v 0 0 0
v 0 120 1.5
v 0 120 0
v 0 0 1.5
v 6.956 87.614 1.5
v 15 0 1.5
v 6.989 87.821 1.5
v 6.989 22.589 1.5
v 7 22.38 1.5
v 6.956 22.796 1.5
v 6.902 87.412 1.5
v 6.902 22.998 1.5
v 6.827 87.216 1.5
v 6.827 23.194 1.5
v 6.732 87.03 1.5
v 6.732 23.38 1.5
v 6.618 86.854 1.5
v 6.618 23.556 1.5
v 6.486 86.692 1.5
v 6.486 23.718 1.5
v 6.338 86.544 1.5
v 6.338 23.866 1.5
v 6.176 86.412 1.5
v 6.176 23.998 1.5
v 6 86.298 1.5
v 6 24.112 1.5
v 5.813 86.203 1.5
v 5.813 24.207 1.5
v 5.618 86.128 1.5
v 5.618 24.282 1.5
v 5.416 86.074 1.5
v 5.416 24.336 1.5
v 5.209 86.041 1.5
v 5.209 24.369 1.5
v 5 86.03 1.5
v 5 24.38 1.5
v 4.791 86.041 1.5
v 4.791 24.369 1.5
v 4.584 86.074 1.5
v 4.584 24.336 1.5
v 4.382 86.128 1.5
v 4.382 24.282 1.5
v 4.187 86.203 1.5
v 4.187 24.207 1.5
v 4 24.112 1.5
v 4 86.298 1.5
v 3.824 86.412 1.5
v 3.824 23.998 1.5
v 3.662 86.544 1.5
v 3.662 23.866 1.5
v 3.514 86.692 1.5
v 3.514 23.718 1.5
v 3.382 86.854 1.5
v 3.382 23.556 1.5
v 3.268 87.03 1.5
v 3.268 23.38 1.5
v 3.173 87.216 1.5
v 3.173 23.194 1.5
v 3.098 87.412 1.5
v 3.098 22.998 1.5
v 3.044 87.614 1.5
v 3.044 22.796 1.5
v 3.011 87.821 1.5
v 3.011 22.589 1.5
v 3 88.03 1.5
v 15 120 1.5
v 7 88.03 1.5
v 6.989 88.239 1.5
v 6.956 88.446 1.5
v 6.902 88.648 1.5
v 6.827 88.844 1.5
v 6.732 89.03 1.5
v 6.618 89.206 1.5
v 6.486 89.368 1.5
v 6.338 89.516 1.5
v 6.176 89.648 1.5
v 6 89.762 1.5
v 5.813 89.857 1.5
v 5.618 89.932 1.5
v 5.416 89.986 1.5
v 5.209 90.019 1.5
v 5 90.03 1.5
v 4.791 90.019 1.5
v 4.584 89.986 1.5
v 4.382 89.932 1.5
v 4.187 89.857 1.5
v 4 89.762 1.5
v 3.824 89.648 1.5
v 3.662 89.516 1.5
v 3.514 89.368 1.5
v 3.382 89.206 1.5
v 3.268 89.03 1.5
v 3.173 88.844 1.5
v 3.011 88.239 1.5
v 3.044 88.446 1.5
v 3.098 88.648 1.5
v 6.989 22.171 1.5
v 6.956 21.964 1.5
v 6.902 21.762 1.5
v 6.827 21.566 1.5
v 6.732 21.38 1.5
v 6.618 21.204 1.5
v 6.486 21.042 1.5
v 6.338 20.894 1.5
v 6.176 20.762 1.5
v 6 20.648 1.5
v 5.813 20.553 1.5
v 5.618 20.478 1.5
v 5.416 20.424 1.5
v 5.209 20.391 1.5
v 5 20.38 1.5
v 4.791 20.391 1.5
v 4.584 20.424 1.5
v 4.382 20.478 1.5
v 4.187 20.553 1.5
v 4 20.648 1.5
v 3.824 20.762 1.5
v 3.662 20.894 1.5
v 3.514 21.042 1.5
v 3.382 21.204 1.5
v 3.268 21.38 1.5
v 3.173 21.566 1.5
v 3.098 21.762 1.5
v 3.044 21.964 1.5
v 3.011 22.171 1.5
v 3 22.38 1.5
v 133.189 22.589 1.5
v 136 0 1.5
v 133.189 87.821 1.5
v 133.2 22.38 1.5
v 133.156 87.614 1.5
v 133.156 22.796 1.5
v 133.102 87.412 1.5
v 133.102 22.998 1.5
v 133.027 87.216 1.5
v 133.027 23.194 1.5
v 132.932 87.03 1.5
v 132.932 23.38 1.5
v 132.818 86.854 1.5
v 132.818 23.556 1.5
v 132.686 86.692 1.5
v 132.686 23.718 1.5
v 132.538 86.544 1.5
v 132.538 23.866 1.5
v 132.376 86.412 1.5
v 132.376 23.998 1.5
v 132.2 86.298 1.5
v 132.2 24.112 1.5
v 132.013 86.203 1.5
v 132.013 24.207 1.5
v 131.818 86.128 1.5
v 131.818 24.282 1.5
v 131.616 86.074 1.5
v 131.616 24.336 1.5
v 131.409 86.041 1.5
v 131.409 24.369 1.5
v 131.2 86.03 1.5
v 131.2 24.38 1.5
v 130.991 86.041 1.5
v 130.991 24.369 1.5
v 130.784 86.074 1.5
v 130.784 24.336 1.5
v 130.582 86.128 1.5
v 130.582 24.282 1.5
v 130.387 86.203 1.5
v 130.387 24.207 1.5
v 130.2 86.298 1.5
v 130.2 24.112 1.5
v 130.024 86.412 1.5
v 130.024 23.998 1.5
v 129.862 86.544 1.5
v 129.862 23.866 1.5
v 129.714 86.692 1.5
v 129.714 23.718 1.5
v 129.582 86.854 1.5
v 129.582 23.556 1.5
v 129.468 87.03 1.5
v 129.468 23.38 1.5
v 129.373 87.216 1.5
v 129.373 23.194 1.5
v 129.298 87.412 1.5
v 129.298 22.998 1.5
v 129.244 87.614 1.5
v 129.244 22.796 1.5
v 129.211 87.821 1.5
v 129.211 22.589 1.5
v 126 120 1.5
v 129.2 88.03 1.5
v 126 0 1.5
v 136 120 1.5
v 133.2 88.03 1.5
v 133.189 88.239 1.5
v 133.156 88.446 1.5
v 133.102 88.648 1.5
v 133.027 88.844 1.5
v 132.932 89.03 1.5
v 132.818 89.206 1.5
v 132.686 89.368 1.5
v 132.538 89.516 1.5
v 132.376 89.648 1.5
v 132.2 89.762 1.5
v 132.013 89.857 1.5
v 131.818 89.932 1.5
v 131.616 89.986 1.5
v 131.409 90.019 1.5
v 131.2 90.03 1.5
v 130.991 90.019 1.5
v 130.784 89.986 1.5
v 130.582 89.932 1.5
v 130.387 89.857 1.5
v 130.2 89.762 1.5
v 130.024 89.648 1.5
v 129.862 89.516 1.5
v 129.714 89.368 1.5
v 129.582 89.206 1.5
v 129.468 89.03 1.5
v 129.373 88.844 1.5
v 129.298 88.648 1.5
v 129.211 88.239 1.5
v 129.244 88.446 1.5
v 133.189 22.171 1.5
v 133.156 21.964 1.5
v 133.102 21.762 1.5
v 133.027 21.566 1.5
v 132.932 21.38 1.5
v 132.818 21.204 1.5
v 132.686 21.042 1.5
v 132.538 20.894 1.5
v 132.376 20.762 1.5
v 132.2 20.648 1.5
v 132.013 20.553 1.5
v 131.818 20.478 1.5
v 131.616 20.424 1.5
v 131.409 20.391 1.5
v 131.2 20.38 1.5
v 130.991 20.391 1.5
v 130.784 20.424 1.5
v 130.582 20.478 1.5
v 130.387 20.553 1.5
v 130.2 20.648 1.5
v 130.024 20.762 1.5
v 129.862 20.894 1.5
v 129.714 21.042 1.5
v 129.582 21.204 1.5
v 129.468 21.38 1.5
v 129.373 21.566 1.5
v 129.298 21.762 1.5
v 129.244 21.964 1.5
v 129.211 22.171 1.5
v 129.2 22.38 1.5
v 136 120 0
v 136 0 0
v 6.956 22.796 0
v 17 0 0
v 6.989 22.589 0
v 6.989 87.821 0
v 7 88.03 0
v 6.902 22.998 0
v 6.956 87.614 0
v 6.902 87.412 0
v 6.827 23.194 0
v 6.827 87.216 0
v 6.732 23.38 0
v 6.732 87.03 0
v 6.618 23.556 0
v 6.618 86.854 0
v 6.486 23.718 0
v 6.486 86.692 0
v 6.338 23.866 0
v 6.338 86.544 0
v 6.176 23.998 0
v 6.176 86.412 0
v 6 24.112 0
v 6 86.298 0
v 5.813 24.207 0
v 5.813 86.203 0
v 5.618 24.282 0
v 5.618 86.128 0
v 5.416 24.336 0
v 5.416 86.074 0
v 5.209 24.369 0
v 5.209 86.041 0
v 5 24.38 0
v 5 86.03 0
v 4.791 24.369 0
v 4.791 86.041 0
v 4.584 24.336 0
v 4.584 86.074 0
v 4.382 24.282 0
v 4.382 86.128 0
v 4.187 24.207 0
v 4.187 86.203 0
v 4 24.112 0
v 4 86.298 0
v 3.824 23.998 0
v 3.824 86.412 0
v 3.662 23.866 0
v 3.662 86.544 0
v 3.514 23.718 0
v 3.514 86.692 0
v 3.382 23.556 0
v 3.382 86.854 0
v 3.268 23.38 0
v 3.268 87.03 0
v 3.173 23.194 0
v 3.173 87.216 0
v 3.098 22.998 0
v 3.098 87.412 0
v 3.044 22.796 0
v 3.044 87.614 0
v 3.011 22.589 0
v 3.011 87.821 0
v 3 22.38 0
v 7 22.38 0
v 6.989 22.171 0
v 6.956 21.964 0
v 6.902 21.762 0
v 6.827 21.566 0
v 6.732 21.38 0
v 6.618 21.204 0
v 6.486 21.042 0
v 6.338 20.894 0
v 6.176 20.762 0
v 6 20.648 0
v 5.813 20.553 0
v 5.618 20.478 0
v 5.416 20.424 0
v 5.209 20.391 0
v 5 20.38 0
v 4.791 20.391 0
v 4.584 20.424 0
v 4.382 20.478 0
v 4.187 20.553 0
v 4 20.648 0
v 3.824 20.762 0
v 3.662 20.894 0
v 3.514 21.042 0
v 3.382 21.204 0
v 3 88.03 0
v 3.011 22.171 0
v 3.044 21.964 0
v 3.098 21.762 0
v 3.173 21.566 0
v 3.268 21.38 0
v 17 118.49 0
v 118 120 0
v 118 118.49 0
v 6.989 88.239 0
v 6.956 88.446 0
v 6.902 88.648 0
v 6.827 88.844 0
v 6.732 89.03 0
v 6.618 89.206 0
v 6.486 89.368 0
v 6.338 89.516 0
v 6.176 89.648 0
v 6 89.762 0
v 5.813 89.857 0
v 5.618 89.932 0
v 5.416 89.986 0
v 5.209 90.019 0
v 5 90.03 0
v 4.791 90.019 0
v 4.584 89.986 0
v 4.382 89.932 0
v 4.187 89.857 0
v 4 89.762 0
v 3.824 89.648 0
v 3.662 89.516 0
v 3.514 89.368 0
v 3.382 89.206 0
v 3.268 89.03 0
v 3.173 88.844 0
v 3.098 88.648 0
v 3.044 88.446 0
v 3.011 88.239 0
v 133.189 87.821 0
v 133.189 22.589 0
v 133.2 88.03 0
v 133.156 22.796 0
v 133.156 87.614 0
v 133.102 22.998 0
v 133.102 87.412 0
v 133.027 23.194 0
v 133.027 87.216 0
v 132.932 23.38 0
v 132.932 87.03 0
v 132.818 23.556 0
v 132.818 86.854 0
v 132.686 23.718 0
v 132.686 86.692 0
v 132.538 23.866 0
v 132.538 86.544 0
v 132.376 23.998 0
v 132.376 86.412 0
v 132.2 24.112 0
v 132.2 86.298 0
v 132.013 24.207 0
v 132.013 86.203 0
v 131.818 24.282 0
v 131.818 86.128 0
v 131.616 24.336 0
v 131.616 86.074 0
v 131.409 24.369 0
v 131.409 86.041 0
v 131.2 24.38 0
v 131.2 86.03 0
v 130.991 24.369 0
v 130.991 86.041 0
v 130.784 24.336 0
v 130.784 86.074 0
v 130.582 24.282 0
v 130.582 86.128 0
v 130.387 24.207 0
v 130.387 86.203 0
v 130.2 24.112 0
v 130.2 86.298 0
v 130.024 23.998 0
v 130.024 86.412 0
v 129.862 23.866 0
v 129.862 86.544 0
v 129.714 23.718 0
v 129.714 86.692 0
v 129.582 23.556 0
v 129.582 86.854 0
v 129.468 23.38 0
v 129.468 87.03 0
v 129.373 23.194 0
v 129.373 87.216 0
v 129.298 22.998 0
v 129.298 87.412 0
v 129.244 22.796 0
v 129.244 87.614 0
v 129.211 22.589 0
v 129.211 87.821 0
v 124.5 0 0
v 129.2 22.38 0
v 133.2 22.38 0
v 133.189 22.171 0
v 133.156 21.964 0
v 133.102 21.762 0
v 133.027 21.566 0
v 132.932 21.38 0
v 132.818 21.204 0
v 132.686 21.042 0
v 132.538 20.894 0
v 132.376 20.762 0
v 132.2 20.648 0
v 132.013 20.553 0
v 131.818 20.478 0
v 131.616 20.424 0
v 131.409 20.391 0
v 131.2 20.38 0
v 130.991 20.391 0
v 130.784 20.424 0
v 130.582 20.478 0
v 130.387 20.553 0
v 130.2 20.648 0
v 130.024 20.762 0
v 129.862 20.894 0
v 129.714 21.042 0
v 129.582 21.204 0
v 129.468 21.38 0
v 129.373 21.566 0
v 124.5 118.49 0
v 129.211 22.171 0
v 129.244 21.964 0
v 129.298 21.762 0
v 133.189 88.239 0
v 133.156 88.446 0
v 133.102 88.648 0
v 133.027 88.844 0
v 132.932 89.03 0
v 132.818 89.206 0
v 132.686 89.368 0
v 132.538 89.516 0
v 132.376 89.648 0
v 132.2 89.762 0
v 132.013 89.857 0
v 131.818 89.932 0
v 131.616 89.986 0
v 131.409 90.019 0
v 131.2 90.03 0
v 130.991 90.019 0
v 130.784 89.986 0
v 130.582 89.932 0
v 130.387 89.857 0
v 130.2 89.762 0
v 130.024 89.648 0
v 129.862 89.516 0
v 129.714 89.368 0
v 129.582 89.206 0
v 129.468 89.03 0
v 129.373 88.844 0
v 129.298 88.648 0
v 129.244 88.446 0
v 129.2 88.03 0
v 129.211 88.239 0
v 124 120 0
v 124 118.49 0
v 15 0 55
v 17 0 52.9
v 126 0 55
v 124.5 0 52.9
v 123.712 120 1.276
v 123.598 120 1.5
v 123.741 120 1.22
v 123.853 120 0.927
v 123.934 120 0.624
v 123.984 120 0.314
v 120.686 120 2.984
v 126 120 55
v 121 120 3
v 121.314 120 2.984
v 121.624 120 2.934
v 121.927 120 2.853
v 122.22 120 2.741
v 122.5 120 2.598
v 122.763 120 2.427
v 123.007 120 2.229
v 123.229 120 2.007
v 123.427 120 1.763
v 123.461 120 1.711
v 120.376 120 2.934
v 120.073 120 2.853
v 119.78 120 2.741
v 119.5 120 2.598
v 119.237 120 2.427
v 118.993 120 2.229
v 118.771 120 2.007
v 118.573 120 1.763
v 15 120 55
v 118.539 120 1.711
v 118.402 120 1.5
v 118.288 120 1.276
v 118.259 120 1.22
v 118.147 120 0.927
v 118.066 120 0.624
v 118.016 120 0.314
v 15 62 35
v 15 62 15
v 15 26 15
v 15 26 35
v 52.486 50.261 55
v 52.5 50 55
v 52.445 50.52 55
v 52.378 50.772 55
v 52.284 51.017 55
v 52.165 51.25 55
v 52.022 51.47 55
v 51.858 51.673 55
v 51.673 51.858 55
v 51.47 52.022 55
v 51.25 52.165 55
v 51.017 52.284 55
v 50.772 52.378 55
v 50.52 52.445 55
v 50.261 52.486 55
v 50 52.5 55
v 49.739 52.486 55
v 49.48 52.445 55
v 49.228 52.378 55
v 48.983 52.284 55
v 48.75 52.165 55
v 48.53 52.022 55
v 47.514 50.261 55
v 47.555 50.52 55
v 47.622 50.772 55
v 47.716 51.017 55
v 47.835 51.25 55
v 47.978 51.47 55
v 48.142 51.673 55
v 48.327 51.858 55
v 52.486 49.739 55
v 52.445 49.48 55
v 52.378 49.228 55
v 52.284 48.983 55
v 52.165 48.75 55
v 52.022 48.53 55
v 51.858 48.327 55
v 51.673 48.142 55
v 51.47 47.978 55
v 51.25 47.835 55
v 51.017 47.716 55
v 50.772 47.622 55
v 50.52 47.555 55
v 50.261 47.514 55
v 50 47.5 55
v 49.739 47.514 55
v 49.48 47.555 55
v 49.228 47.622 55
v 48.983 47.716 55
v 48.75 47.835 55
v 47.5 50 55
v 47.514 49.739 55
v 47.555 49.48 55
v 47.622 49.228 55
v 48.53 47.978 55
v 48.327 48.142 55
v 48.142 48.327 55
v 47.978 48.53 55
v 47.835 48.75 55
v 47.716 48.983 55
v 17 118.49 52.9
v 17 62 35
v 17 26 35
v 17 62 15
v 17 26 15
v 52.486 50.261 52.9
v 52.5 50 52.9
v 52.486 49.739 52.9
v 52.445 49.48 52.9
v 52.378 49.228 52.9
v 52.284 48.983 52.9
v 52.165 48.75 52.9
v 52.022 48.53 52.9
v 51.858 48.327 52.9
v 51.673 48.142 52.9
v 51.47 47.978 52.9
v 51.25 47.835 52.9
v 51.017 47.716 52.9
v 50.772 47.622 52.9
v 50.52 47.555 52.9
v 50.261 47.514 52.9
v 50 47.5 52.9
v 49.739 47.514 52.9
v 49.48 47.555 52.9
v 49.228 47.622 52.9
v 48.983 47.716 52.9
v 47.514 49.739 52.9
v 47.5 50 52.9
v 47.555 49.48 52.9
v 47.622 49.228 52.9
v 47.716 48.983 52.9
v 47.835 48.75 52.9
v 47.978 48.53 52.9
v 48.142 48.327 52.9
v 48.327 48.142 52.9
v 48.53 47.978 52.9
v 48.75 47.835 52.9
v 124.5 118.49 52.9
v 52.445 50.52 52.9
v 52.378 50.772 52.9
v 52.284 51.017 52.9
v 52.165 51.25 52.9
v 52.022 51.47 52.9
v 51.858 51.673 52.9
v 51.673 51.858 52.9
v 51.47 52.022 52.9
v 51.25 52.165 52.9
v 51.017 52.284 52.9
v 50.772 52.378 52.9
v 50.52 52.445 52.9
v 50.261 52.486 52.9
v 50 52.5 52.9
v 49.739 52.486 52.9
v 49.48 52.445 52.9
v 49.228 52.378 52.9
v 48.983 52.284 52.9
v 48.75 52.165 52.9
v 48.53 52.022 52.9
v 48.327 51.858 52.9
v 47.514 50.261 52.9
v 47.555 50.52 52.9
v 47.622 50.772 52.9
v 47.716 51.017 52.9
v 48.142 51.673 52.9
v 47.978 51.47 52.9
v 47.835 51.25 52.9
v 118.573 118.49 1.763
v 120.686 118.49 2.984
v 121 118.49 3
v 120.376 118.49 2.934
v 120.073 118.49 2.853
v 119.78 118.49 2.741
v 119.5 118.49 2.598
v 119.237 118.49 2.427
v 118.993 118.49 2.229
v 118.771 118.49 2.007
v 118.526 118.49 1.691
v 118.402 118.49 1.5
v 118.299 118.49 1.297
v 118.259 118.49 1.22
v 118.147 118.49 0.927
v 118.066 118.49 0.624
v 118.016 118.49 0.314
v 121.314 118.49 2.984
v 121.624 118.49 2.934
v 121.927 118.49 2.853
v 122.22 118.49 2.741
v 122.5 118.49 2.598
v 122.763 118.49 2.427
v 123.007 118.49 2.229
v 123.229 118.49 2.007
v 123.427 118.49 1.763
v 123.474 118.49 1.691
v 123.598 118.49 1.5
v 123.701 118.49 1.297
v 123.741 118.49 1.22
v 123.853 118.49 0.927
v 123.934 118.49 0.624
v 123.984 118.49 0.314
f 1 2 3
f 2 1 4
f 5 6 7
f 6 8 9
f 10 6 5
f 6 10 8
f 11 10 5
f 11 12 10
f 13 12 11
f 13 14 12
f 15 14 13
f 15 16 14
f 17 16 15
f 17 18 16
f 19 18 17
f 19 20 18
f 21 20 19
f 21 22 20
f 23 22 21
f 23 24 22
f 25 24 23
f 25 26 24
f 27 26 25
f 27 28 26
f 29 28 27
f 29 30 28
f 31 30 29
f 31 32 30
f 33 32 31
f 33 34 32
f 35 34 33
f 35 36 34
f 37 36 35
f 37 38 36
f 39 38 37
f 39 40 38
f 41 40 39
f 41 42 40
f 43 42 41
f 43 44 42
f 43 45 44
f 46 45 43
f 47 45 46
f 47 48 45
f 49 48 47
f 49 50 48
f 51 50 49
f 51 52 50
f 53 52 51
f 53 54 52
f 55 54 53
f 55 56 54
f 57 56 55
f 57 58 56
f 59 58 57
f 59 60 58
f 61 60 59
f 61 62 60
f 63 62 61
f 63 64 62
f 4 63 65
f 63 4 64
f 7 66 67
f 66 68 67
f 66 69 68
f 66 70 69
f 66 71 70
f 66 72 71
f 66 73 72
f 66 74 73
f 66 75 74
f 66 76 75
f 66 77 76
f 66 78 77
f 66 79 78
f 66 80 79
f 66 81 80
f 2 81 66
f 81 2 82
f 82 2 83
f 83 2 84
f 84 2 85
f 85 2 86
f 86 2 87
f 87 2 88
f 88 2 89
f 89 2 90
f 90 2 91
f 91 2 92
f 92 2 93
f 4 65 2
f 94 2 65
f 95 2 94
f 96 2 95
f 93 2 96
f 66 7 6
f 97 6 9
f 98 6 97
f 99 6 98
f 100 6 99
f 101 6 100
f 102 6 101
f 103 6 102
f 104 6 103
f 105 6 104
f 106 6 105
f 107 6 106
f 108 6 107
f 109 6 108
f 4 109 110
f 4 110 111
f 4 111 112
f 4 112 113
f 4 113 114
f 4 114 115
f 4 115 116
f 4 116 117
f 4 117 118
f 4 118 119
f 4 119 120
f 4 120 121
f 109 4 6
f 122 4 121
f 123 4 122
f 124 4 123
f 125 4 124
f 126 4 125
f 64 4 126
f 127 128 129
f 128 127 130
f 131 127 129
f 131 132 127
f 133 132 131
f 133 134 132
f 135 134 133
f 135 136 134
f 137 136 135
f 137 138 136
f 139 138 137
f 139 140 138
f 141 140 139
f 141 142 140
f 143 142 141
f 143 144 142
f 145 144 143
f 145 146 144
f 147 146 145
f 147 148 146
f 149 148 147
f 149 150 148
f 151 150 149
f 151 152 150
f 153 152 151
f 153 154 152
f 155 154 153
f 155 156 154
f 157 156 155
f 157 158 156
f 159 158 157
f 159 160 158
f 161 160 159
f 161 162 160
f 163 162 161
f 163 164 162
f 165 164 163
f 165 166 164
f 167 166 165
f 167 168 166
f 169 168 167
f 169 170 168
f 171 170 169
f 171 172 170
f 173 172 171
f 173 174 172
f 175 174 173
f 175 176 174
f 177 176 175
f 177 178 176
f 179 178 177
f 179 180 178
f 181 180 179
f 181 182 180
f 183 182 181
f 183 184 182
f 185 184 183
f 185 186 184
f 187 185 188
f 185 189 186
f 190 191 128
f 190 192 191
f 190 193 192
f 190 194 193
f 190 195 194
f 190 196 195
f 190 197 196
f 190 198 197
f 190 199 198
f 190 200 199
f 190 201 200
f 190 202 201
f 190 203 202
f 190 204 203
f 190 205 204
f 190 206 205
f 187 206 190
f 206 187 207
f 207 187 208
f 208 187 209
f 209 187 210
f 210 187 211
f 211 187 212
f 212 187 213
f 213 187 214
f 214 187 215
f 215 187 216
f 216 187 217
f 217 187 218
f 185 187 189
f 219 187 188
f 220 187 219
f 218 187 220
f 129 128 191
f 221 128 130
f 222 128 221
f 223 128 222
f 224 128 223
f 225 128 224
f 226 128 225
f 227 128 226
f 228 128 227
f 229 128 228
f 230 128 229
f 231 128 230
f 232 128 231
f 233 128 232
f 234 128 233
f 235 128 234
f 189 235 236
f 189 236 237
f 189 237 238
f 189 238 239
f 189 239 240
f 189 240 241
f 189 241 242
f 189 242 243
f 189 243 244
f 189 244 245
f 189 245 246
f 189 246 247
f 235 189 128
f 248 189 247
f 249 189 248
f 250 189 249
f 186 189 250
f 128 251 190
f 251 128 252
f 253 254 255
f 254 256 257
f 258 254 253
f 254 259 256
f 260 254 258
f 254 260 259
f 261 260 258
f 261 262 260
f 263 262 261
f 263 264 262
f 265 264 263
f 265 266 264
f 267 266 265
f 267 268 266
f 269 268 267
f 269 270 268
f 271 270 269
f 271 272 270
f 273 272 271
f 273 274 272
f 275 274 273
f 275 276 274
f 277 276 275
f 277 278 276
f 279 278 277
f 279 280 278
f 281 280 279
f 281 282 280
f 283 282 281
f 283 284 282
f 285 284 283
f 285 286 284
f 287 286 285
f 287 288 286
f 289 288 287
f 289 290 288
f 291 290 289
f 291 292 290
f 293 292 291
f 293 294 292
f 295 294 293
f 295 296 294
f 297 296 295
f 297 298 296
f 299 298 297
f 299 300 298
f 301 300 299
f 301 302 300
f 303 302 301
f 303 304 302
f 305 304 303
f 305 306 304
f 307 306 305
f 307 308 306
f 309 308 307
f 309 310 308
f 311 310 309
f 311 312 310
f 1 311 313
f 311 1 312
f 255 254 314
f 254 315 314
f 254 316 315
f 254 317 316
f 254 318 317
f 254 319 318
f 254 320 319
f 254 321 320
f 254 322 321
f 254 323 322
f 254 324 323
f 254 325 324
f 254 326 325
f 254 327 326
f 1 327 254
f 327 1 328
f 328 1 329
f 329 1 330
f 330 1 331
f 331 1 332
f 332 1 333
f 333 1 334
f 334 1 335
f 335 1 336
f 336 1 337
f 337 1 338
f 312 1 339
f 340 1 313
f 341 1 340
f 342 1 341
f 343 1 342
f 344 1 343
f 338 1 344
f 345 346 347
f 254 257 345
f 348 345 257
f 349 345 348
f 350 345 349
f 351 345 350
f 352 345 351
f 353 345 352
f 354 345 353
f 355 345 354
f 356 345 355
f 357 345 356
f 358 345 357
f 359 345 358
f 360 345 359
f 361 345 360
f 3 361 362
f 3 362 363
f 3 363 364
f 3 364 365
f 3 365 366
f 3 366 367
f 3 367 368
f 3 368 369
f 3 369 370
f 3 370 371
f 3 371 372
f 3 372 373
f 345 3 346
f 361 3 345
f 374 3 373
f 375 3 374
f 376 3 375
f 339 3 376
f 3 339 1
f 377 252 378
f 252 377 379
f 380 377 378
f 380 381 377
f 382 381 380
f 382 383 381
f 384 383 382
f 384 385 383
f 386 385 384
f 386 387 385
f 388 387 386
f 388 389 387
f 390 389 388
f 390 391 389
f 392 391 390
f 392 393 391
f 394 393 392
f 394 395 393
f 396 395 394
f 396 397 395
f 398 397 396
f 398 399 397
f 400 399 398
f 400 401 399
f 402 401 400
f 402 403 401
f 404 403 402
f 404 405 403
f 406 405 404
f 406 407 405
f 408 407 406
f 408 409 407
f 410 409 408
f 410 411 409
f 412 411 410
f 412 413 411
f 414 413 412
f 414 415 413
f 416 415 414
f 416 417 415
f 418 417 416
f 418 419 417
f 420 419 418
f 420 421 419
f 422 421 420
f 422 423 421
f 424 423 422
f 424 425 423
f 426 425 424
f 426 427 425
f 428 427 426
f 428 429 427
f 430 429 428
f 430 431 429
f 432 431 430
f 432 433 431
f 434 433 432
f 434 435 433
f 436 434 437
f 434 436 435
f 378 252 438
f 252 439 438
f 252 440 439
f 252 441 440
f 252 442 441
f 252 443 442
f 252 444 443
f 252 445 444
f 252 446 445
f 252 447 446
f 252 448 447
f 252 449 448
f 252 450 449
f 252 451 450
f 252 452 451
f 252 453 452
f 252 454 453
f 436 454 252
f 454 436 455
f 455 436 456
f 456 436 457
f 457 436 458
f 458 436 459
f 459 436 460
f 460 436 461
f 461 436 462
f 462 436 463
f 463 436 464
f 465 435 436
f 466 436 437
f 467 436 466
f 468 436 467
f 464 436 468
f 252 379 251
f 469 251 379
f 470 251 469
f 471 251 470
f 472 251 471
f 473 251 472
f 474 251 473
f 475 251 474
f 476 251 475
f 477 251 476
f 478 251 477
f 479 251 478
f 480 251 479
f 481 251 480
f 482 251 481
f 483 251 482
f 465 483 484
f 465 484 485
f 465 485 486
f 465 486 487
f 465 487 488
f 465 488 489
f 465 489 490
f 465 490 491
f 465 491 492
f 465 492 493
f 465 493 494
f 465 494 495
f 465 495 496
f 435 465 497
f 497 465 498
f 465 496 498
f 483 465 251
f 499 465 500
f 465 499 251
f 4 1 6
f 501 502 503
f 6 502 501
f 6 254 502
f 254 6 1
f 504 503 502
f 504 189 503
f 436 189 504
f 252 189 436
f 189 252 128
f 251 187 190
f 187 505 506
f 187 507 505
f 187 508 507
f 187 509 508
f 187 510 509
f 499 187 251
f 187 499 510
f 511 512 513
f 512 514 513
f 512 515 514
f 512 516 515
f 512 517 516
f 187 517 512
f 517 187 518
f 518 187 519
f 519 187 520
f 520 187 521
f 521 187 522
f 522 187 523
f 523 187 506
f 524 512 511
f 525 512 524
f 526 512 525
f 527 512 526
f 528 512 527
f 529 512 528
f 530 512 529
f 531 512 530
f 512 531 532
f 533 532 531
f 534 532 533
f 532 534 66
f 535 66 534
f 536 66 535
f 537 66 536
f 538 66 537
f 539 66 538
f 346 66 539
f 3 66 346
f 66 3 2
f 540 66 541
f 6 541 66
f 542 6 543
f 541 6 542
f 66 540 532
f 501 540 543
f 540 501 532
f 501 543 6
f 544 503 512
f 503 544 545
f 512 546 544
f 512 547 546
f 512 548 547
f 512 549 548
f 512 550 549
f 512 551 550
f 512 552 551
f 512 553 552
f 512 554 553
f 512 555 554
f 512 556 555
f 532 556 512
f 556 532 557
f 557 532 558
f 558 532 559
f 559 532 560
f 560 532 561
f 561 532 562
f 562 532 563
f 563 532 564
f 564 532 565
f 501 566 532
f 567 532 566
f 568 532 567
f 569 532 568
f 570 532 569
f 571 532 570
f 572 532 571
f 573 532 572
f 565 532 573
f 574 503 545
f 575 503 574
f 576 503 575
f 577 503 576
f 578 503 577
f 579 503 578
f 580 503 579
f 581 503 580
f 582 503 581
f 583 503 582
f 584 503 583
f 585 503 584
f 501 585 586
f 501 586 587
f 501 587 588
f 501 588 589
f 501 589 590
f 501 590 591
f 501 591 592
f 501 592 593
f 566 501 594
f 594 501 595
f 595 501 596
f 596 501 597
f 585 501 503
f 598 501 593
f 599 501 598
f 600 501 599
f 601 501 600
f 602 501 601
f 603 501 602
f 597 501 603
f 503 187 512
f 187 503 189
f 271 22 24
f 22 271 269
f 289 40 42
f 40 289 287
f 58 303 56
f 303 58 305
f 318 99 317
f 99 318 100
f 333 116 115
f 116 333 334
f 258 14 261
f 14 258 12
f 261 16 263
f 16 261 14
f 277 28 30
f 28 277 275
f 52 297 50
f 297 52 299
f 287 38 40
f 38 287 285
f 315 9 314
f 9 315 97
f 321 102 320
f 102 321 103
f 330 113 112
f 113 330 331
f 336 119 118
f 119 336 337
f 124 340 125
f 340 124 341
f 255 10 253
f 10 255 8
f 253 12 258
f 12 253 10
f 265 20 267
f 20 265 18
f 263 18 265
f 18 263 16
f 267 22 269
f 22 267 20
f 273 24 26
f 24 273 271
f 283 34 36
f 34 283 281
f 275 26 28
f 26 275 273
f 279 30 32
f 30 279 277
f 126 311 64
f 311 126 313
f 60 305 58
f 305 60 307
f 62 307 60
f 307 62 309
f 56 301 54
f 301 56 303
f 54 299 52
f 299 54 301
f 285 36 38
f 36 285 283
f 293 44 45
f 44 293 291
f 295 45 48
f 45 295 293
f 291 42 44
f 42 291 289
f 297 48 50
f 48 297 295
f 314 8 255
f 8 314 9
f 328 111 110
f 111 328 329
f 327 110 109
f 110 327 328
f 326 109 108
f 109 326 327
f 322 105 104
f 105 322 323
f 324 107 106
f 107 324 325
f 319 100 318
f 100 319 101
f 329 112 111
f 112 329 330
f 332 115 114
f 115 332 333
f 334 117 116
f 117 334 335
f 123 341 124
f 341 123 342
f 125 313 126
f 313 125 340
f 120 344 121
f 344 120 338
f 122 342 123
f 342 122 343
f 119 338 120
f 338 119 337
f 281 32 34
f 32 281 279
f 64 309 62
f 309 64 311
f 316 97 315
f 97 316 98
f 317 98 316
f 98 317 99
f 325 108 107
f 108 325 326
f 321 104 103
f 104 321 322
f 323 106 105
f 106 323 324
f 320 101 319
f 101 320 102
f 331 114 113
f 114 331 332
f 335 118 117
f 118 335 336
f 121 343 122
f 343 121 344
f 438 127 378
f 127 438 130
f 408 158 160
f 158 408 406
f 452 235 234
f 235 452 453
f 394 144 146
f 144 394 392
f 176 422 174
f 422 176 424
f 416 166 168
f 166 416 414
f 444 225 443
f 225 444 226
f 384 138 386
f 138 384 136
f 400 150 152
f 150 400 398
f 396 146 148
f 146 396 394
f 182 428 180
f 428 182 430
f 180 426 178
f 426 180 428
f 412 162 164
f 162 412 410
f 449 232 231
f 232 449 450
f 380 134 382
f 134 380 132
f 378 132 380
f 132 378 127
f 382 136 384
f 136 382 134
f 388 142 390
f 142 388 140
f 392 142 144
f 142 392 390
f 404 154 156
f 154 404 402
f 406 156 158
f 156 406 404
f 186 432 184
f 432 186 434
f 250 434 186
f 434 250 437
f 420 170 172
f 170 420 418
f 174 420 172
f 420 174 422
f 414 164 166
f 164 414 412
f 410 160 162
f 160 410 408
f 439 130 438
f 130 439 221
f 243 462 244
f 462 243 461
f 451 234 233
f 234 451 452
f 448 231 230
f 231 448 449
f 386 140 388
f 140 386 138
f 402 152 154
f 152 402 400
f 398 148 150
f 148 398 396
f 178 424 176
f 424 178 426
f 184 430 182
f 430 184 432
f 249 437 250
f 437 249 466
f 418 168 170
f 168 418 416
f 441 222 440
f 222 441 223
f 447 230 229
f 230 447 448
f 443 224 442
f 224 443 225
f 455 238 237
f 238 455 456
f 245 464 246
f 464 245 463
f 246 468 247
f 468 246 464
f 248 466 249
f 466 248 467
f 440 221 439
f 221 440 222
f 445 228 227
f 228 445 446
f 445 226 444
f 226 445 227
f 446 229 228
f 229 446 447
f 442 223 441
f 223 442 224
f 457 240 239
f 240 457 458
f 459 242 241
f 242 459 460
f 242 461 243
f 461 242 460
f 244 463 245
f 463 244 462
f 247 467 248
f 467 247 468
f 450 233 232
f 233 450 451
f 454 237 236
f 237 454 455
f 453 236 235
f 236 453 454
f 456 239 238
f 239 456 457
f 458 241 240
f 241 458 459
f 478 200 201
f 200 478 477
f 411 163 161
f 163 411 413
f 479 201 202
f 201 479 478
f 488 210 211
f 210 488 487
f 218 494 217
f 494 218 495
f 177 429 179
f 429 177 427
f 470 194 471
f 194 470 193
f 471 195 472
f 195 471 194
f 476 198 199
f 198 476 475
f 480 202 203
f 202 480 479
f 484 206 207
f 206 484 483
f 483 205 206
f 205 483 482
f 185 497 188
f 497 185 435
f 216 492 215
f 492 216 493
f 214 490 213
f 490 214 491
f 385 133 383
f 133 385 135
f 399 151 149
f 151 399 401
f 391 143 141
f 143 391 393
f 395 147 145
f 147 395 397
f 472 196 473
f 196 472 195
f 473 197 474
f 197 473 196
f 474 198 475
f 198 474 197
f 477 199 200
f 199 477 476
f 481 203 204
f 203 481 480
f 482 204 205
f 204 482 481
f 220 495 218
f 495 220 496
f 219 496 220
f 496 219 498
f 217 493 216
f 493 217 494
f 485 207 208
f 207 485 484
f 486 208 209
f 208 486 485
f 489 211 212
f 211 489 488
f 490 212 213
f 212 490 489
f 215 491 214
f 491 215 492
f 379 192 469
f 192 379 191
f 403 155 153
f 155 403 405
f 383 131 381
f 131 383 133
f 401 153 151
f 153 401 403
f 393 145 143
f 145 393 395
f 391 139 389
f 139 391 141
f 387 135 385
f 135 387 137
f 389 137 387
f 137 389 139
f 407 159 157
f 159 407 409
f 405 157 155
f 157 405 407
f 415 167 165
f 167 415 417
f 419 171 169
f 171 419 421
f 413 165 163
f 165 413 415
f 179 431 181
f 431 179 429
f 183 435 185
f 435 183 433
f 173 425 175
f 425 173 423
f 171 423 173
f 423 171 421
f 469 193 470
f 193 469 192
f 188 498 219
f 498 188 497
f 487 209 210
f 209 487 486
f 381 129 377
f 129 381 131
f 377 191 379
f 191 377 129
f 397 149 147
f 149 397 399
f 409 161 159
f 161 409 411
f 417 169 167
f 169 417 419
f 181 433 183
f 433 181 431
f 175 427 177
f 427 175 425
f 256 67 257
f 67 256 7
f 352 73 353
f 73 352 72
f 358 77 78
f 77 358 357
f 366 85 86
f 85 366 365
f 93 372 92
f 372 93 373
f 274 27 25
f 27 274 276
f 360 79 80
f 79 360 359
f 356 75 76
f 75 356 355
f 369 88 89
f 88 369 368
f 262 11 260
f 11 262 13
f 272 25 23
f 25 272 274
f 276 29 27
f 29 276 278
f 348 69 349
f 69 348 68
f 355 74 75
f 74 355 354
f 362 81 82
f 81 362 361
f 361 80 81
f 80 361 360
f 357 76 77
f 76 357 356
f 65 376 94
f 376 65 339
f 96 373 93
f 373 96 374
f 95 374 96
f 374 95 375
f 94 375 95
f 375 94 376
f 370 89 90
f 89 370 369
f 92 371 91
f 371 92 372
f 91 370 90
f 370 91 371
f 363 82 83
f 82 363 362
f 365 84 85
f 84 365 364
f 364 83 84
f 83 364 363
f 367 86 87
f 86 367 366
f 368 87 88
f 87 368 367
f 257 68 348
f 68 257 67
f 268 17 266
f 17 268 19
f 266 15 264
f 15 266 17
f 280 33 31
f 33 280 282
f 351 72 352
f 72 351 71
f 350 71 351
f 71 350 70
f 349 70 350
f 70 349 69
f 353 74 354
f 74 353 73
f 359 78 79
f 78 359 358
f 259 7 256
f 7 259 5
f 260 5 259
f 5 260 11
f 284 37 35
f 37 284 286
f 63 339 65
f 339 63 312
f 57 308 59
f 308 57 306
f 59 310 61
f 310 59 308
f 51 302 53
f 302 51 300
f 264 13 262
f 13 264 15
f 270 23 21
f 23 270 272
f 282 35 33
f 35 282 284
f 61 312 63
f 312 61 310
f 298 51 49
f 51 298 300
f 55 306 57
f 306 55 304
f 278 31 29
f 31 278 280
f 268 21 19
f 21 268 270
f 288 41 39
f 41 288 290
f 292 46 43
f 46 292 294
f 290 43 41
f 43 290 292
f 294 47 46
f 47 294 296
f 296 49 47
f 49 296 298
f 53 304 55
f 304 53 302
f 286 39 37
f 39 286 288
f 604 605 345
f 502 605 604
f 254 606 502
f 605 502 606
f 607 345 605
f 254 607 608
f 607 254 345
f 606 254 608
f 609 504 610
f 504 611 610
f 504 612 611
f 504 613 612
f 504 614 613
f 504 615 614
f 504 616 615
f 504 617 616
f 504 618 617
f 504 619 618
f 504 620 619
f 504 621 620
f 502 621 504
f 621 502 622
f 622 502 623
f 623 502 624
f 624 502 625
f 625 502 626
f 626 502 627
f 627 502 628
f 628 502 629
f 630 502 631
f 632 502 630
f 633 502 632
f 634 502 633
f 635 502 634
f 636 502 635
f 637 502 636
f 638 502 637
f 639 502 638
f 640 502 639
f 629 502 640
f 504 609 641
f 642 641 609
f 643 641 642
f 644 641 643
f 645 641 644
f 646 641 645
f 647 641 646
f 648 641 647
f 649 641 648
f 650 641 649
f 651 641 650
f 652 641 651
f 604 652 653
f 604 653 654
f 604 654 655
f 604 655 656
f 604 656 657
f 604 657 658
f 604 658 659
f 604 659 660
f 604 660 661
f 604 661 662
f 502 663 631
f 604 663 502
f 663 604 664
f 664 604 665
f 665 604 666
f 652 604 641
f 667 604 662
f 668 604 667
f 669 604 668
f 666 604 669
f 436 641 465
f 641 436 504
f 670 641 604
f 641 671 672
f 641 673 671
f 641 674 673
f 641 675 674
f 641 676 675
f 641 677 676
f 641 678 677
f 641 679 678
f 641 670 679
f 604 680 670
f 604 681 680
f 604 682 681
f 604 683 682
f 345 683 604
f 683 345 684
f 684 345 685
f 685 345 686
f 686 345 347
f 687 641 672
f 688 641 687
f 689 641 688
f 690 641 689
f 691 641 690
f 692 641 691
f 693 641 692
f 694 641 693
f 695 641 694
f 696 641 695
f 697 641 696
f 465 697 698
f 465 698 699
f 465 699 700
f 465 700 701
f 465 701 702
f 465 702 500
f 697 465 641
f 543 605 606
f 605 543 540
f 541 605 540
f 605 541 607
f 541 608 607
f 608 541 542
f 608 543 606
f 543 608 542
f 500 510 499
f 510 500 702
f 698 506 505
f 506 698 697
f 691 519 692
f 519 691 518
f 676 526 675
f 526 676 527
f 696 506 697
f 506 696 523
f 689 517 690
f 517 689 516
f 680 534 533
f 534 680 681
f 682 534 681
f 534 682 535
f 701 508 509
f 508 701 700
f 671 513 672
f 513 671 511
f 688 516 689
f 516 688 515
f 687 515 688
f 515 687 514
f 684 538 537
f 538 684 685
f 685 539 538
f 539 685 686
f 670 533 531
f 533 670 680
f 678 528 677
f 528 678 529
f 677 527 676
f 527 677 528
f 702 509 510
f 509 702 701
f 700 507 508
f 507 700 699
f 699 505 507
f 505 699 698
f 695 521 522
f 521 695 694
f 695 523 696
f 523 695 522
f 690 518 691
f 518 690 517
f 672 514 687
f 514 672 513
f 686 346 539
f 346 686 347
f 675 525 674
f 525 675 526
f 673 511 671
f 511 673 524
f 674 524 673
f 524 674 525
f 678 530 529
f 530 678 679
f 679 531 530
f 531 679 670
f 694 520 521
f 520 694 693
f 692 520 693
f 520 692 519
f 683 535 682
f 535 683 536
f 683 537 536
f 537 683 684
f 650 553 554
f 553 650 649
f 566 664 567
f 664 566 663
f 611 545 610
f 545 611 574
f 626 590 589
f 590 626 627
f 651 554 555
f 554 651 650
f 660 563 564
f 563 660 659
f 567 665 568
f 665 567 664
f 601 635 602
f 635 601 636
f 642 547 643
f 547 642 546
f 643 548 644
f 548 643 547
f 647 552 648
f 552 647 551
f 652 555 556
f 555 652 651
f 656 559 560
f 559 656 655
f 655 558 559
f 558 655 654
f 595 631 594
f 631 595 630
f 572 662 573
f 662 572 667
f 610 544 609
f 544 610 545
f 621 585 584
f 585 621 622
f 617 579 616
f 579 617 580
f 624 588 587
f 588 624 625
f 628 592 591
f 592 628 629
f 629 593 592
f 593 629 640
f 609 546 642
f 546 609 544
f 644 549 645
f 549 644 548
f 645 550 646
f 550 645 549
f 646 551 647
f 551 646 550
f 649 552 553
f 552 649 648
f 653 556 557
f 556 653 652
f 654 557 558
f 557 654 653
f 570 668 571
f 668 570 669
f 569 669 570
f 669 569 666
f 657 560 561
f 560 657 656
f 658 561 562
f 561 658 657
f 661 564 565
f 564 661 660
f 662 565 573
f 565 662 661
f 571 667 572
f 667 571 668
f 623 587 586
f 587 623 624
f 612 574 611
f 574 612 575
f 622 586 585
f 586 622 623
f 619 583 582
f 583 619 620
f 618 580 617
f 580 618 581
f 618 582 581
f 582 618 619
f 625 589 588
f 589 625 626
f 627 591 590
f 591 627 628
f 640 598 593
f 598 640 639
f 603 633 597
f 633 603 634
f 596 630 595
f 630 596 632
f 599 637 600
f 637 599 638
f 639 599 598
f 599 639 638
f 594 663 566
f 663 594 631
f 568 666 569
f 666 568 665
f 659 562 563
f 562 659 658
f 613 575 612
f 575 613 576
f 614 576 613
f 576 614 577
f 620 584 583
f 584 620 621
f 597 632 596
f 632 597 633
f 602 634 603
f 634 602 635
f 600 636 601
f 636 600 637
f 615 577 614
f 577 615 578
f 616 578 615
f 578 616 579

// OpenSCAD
$fn = 60;

//{"params":[225.59,25.58,4,1],"type":"roundHole"},
//{"params":[225.59,91.23,4,2],"type":"roundHole"},
//{"params":[99.39,25.58,4,3],"type":"roundHole"},
//{"params":[99.39,91.23,4,4],"type":"roundHole"},
//{"params":[109.39,15.58,106.2,93.65,3,5],"type":"rectHole"}],

width = 136; // X
height = 120; // Y
depth = 55; // Z
// First hole y offset
// this is different between V1.2.1 and 1.2.2 cases
//holeYOffset = 21.58; // V1.2.1 - TODO: Check!
holeYOffset = 25.58; // V1.2.2

module PiModel() {
    translate([13+5, holeYOffset + 2, 13]) {
        cube([85, 60, 40]);
        
        // USB 
        translate([-20,0,1]) {
            cube([22,15, 18]);
        }
        
        // Second USB
        translate([-20,20,1]) {
            cube([22,15, 18]);
        }
        
        // Power connector
        translate([85,36,12]) {
            cube([15,12, 10]);
        }
    }
}

module baseLayer() {
    difference() {
        union() {
            // Base layer for holes.
            cube([width, height, 1.5]);
            
            translate([5 + 10, 0, -0]) {
                cube([width - 15 - 10, height, depth]);
            }
        }
        union() {
            // Drill the holess..
            // 5mm in, and 25.58mm down (from laser) - 3mm thickness acrylic + tollerance
            translate([5, holeYOffset- 3.2, -0.1]) {
                cylinder(d=4, h=2);
                translate([126.2, 0, 0]) {
                    #cylinder(d=4, h=2);
                }
                
                translate([126.2, 65.65, 0]) {
                    #cylinder(d=4, h=2);
                }
                
                translate([0, 65.65, 0]) {
                    #cylinder(d=4, h=2);
                }
            }
            
            // Cut out main Pi Body
            translate([5 + 12, -0.01, -0.1]) {
                cube([width - 17 - 11.5, height-1.5, depth-2]);
            }
            
            // Pi Offset (Y=0 = 27mm, X=13+5)
            // Cut out for the USB connectors
            translate([5 + 9 - 0.01, 26, 15]) {
                cube([4, 36, 20]);
            }
            
            // Cutout for the power cable.
            translate([width - 15, height +4, 0]) {
                rotate([90,0,0]) {
                    #cylinder(d=6, h=20);
                }
            }
            
            // Hole for temperature sensor.
            translate([50, 50, depth -10]) {
            
                #cylinder(d=5, h=20);
            }
                
        }
    }
}

baseLayer();
%PiModel();
